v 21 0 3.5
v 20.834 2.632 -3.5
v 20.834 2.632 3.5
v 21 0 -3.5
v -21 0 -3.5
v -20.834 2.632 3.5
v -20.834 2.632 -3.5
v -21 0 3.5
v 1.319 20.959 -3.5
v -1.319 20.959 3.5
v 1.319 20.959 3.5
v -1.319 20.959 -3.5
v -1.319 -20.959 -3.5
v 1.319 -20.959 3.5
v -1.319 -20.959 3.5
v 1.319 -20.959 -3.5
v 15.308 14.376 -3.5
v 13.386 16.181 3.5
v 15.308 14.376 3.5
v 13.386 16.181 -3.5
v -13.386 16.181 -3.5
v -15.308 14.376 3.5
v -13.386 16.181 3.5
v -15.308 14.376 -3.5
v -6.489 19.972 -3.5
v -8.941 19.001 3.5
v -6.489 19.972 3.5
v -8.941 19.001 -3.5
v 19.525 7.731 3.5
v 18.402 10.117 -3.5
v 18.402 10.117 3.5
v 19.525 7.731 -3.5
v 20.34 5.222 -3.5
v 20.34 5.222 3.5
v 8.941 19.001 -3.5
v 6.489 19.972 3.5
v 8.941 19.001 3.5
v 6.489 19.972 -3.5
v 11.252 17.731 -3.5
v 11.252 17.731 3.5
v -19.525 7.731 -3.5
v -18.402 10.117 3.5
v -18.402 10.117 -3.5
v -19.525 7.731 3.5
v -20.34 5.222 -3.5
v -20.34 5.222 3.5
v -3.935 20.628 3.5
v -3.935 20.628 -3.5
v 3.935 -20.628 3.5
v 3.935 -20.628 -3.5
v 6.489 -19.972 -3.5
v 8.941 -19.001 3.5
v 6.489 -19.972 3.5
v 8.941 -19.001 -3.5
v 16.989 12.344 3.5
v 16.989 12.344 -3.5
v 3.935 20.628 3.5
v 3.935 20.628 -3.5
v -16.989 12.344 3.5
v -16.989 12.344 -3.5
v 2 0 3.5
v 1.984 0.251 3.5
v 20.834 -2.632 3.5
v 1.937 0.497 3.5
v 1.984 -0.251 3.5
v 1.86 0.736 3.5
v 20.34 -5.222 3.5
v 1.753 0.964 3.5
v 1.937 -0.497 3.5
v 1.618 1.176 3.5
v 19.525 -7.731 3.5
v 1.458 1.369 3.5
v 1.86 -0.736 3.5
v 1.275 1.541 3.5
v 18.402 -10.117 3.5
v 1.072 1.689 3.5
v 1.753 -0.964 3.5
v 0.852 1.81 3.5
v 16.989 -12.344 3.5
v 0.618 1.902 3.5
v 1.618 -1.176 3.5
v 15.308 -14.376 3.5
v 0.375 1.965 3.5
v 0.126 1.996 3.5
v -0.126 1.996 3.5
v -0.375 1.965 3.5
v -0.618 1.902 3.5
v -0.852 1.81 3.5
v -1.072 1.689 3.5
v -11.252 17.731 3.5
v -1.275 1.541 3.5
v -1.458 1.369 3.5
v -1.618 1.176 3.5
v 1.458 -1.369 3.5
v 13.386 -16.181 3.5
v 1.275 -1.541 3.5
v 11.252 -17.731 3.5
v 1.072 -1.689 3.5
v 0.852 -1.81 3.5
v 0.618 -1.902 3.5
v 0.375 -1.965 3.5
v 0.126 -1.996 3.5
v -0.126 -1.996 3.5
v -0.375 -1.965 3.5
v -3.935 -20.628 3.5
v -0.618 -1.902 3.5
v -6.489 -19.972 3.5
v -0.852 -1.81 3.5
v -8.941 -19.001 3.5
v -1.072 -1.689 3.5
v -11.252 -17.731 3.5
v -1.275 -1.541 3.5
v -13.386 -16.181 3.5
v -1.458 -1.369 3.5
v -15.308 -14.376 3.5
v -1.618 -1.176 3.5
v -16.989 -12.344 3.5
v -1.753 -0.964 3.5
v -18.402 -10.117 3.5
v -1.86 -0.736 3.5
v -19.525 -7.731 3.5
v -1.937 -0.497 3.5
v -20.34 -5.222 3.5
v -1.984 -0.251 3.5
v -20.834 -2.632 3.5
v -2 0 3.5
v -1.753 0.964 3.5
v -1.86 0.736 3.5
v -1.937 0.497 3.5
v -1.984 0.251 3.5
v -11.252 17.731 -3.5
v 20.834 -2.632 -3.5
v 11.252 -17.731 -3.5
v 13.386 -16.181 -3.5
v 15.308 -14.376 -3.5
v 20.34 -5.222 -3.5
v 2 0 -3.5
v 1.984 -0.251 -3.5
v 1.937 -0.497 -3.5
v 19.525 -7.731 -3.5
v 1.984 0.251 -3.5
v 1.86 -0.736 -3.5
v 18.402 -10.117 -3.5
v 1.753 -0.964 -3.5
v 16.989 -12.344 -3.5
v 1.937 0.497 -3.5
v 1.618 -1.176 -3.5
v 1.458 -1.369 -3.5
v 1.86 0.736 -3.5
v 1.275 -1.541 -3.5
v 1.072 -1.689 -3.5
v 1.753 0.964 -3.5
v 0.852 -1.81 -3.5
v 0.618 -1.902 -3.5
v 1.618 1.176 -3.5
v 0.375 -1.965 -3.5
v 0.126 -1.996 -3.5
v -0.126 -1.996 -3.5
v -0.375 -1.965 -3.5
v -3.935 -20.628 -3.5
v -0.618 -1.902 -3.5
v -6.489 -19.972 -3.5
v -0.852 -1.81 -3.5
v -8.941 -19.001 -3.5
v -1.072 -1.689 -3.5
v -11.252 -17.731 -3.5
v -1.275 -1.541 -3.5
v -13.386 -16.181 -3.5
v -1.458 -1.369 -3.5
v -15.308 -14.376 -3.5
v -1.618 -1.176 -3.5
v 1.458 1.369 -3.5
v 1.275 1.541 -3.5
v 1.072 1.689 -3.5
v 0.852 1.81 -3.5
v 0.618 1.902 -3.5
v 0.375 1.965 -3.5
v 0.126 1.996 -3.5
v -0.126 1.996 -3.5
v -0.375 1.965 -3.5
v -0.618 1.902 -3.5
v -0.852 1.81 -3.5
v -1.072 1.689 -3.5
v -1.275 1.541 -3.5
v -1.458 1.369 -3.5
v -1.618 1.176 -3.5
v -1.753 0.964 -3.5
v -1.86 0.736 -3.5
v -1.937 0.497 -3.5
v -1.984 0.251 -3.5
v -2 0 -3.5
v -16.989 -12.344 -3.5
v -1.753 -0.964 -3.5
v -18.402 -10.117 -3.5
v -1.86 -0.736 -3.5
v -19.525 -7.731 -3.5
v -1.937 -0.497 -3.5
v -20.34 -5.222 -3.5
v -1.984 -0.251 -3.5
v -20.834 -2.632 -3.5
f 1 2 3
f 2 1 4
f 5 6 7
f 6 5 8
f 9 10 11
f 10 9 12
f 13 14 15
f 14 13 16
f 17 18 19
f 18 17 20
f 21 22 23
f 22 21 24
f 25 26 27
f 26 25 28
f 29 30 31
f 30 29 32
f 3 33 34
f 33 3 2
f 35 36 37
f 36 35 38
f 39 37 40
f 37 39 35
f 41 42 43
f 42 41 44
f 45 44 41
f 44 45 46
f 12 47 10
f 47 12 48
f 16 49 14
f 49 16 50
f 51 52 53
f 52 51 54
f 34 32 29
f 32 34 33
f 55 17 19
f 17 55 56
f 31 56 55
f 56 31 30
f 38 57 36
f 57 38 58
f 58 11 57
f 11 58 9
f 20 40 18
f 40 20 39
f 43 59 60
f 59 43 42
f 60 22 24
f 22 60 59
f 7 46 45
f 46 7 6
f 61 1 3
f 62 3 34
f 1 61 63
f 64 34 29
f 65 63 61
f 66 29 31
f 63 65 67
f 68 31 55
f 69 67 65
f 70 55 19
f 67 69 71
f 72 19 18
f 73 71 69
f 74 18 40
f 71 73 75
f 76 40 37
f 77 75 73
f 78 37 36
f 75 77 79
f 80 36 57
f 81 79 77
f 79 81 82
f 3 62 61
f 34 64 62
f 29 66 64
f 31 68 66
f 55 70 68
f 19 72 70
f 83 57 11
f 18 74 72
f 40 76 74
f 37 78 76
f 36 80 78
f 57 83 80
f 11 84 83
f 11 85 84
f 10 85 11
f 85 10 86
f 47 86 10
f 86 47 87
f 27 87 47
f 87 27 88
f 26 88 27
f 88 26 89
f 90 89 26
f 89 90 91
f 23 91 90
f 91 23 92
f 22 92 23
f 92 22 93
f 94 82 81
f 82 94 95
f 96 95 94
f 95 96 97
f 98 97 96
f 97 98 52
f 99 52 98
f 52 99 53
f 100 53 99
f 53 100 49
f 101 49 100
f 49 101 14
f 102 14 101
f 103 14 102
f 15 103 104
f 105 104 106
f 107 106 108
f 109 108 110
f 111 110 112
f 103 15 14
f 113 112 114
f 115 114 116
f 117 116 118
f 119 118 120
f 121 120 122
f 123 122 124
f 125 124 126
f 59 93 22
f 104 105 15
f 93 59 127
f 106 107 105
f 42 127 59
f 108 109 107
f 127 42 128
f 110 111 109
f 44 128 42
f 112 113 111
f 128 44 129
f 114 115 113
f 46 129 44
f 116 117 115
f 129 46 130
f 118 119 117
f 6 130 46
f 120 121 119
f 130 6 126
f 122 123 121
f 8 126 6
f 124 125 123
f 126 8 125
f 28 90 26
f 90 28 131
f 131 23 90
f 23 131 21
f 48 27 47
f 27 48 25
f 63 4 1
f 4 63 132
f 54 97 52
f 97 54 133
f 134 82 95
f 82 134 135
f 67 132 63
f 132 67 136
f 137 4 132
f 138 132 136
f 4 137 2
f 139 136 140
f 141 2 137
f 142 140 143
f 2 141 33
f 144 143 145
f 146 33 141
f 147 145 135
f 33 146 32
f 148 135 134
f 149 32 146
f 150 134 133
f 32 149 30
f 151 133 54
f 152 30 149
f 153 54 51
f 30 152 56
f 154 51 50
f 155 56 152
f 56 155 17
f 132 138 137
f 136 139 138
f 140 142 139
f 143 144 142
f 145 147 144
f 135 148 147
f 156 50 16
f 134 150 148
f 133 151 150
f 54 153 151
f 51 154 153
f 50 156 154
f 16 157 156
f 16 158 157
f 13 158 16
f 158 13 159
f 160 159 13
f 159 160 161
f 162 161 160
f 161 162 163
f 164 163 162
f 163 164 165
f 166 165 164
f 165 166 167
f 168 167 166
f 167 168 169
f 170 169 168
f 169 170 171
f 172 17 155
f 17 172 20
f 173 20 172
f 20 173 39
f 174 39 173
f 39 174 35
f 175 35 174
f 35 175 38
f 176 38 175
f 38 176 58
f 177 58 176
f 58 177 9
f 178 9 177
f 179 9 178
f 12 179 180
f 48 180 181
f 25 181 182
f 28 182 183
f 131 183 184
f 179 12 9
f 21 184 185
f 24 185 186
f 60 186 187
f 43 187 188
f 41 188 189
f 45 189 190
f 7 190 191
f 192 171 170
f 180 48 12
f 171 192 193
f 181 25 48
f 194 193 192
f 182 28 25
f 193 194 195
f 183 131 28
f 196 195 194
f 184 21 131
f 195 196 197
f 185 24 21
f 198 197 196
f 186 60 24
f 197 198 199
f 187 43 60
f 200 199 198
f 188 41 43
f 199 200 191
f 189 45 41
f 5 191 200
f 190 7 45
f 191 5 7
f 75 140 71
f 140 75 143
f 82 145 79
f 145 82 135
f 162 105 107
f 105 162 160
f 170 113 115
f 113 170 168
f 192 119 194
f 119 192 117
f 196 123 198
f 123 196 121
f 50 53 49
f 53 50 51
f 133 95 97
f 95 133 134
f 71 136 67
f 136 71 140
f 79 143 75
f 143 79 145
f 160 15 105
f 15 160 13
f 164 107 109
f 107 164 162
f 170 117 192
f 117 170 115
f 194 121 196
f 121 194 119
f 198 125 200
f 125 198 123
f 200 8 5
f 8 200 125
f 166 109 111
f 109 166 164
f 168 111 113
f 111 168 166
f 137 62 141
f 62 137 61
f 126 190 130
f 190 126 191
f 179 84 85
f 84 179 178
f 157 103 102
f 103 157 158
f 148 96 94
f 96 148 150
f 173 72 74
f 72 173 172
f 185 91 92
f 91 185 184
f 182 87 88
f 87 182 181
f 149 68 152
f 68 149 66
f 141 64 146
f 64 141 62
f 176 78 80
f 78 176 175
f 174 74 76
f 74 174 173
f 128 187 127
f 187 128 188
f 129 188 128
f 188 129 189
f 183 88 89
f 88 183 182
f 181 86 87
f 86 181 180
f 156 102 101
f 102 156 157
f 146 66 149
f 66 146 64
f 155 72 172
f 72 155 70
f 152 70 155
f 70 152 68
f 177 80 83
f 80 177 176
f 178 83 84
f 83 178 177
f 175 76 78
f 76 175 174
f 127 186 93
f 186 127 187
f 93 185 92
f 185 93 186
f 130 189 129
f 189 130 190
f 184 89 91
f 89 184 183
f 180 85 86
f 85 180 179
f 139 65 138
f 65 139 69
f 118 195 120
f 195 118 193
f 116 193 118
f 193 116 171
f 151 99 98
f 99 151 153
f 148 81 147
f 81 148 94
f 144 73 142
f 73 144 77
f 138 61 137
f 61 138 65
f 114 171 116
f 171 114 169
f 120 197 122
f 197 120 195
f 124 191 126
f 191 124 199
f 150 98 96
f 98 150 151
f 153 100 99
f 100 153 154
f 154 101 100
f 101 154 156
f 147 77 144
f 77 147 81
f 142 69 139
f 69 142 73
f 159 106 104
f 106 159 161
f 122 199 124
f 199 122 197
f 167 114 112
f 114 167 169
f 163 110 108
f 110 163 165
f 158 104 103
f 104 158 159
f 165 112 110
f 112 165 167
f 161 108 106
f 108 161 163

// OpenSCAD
$fn = 50;


difference() {
	union() {
		translate(v = [0, 0, -3.5000000000]) {
			cylinder(h = 7, r = 21.0000000000);
		}
	}
	union() {
		translate(v = [0, 0, -100.0000000000]) {
			cylinder(h = 200, r = 2);
		}
	}
}
